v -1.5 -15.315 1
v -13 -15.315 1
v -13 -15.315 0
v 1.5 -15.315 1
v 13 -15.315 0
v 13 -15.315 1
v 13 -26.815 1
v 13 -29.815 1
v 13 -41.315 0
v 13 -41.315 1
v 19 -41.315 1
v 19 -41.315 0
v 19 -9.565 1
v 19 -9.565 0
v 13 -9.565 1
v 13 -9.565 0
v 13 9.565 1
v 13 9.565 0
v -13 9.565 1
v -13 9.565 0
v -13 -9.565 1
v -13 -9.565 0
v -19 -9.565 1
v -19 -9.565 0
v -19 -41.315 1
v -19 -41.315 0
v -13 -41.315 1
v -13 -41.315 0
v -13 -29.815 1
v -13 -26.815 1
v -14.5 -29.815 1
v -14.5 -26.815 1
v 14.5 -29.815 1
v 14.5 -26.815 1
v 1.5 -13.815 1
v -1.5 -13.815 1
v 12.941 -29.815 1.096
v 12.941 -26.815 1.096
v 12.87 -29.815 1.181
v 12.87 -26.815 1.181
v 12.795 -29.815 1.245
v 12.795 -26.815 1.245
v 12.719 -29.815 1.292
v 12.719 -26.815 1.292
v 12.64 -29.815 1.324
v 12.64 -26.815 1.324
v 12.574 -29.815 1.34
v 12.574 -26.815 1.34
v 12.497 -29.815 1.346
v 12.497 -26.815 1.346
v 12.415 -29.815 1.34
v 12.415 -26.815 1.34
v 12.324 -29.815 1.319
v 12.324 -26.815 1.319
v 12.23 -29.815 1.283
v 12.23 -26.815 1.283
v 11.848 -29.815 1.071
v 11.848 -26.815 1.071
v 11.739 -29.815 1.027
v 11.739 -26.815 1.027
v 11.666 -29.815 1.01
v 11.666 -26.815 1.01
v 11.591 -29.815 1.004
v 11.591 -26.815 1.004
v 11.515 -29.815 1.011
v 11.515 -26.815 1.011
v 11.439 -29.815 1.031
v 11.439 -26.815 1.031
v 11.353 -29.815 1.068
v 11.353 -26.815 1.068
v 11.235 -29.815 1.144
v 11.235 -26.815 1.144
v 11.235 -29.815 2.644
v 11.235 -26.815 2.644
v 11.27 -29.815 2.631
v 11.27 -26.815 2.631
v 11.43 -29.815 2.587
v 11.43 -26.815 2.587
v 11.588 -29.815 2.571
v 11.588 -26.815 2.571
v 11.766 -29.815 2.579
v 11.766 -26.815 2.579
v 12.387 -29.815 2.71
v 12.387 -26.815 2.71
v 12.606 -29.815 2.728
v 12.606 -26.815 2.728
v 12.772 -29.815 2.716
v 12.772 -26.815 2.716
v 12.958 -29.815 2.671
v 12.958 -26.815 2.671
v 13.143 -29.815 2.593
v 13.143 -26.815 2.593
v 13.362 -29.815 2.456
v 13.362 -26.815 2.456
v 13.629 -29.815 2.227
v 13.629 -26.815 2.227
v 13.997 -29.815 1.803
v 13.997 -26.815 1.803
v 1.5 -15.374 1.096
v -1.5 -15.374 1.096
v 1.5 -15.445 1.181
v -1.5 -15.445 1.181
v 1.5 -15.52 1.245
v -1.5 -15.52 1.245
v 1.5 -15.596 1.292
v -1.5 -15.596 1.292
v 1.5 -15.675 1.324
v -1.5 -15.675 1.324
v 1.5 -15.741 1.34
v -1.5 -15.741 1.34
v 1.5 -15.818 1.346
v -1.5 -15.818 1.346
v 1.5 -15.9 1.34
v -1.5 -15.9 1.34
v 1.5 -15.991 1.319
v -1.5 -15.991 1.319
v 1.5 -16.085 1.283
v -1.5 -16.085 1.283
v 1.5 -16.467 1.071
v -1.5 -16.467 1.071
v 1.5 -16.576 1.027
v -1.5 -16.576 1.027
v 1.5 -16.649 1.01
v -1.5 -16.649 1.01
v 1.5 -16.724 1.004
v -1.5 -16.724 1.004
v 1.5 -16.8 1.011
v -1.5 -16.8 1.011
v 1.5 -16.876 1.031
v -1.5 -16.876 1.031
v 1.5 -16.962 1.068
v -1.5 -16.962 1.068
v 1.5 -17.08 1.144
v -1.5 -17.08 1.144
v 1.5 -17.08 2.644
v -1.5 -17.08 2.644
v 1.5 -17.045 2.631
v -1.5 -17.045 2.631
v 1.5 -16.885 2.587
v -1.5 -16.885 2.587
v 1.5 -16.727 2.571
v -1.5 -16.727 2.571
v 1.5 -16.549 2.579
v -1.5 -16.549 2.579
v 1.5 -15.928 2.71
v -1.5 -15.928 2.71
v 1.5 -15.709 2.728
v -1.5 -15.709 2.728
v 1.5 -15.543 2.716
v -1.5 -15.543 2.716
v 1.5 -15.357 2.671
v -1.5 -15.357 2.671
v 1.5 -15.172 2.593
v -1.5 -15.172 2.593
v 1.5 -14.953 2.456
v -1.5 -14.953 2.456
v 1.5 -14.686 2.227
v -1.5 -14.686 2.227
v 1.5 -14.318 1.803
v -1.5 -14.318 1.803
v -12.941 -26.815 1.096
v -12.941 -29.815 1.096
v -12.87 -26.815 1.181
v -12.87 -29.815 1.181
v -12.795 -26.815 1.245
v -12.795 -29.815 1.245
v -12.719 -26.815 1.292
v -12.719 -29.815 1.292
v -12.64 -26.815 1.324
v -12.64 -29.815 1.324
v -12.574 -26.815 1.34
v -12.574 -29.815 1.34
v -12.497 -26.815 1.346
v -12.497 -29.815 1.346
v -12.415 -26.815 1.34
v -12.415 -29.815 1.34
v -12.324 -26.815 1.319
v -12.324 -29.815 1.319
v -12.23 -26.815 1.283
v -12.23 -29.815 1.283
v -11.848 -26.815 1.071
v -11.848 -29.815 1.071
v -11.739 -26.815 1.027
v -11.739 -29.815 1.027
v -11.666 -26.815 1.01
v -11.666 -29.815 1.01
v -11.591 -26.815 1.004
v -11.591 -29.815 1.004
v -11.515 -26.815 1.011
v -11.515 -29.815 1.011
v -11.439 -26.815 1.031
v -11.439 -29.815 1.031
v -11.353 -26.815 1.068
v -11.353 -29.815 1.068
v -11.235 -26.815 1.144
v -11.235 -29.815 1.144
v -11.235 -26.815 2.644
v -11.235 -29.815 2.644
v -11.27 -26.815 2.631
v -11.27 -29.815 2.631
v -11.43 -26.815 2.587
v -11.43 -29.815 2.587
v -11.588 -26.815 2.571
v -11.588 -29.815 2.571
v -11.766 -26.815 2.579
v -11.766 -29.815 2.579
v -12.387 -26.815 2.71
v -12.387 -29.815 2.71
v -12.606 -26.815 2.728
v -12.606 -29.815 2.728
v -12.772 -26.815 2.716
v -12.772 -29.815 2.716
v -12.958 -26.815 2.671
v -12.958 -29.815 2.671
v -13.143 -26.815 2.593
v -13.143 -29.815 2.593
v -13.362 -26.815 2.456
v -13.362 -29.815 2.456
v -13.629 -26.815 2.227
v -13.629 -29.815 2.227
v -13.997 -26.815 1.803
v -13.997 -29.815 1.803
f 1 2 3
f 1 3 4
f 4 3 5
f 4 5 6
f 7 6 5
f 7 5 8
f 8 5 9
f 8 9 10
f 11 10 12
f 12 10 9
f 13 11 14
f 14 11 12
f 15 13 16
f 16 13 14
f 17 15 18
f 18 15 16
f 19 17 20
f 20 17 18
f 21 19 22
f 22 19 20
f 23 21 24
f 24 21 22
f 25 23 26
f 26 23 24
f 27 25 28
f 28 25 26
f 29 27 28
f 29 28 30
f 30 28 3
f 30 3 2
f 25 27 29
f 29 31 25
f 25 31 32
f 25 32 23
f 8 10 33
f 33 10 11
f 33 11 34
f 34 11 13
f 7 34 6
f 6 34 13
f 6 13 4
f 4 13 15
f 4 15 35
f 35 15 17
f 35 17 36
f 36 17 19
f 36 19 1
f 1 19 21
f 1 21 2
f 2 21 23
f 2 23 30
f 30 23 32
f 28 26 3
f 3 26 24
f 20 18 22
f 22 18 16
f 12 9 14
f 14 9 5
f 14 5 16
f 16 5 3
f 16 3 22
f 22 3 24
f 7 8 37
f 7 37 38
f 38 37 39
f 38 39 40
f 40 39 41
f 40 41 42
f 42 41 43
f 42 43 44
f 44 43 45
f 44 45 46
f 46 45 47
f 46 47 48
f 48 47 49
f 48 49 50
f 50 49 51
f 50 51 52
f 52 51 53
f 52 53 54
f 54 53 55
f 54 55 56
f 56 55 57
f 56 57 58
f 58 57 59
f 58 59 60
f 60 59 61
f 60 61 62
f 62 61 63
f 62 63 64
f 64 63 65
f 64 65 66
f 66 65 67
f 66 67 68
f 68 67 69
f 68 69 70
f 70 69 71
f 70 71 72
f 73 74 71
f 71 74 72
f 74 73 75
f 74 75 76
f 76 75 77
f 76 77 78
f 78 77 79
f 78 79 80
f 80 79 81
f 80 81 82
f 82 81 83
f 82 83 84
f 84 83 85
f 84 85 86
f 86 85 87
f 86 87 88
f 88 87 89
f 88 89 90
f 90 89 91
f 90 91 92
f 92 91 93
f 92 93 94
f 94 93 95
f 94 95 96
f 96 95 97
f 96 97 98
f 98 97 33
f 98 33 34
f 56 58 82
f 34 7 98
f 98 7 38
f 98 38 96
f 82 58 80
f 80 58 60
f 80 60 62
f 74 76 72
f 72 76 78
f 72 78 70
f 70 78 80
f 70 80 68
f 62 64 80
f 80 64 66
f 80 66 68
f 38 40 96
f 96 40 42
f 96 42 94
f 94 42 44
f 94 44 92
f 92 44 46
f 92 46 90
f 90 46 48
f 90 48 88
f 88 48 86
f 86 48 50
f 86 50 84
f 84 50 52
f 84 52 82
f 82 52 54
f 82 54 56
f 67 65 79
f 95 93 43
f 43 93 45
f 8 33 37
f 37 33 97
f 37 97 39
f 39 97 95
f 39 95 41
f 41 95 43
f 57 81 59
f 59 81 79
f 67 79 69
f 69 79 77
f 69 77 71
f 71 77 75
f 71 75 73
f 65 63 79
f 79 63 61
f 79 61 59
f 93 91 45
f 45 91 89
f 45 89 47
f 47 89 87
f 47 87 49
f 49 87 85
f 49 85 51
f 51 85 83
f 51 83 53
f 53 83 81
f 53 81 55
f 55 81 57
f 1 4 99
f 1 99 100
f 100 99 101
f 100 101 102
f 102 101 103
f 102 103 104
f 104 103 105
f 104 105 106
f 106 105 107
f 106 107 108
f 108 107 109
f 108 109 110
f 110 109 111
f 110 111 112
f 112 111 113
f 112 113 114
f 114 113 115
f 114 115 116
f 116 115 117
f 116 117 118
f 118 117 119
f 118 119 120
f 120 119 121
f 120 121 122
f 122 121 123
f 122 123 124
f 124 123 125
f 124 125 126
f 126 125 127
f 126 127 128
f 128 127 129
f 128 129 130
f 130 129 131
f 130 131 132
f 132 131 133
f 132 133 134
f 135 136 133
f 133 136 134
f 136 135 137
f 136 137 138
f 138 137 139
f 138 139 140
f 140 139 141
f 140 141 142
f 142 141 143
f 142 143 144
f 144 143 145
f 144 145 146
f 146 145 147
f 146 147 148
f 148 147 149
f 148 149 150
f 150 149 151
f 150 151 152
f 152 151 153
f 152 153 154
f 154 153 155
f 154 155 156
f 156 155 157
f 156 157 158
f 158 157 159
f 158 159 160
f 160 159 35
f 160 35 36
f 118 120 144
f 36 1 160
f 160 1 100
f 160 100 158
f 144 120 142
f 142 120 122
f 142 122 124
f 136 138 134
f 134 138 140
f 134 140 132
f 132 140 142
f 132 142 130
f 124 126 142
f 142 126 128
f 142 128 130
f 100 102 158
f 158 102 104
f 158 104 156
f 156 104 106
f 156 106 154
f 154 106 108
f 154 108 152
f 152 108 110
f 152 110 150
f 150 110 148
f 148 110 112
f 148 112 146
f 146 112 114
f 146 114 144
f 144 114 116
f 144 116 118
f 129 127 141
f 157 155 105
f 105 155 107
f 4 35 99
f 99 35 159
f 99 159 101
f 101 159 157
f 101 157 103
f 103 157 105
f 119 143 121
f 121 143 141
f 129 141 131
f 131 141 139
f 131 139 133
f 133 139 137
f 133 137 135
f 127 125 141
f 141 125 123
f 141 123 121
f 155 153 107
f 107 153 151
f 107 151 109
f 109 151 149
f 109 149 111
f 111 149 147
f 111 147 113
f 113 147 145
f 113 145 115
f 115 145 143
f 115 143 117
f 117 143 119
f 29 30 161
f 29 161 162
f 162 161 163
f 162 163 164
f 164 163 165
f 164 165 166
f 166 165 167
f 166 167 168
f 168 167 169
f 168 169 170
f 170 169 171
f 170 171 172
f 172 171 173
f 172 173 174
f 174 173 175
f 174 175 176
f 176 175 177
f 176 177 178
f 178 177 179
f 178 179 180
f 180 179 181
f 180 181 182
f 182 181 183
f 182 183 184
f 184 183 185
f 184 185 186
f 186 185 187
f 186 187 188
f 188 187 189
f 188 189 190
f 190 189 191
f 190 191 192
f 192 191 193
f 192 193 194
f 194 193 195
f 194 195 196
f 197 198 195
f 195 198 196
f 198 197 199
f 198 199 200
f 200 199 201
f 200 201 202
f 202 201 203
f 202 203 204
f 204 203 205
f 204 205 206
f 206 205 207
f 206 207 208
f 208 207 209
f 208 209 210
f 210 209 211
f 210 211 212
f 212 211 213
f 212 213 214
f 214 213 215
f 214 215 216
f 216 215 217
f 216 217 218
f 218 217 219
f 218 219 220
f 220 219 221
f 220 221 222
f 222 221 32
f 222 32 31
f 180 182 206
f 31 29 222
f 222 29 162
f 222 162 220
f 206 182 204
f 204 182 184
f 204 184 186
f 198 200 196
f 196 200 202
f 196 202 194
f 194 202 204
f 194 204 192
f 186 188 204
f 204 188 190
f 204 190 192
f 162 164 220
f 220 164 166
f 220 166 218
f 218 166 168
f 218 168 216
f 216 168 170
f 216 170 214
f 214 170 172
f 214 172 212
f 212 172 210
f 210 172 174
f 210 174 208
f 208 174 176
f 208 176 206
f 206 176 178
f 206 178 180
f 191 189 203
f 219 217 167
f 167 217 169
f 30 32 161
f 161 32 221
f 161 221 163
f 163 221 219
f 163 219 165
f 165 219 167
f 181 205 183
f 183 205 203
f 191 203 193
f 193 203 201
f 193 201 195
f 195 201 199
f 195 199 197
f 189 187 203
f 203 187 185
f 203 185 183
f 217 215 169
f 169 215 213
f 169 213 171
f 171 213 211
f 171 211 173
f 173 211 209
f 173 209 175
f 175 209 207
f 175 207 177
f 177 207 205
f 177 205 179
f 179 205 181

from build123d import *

# Parameters (mm, degrees)
BOSS_EXTRUDE1_DEPTH = 1
BOSS_EXTRUDE2_START = -1.5
BOSS_EXTRUDE2_DEPTH = 3
CIRPATTERN1_COUNT   = 3
CIRPATTERN1_ANGLE   = 180


# Read off the part's stored shape, not the designer's step: Boss-Extrude2
with BuildPart() as part:
    # Sketch1 → Boss-Extrude1 (new body)
    with BuildSketch(Plane.XY):
        Polygon((13, -9.565), (13, 9.565), (-13, 9.565), (-13, -9.565), (-19, -9.565), (-19, -41.315), (-13, -41.315), (-13, -15.315), (13, -15.315), (13, -41.315), (19, -41.315), (19, -9.565), align=None)
    extrude(amount=BOSS_EXTRUDE1_DEPTH)

    # Boss-Extrude2 outline → Boss-Extrude2 (add)
    with BuildSketch(Plane(origin=(0, -28.315, 0), x_dir=(-1, 0, 0), z_dir=(0, -1, 0)).offset(BOSS_EXTRUDE2_START)):
        with BuildLine():
            Line((-11.23522271, -2.644286359), (-11.23522271, -1.144286359))
            add(Edge.make_bspline(
                [(-11.23522271, -1.144286359), (-11.740174878, -0.757764956), (-12.028679887, -1.161534837), (-12.227869222, -1.503002268), (-12.747184273, -1.488774458), (-13, -1)],
                knots=[0, 0, 0, 0, 0, 0, 1, 1, 1, 1, 1, 1], degree=5))
            Line((-13, -1), (-14.5, -1))
            add(Edge.make_bspline(
                [(-14.5, -1), (-13.760887065, -2.414906572), (-12.67824158, -3.40768712), (-12.345095428, -2.525951835), (-11.7215069, -2.450856602), (-11.23522271, -2.644286359)],
                knots=[0, 0, 0, 0, 0, 0, 1, 1, 1, 1, 1, 1], degree=5))
        make_face()
    boss_extrude2 = extrude(amount=BOSS_EXTRUDE2_DEPTH)

    # CirPattern1: Boss-Extrude2 ×3 about axis
    cirpattern1_axis = Axis((0, -28.315, 1.05), (0, 0, 1))
    for i in range(1, CIRPATTERN1_COUNT):
        add(boss_extrude2.rotate(cirpattern1_axis, i * CIRPATTERN1_ANGLE / (CIRPATTERN1_COUNT - 1)))


solid = part.part
